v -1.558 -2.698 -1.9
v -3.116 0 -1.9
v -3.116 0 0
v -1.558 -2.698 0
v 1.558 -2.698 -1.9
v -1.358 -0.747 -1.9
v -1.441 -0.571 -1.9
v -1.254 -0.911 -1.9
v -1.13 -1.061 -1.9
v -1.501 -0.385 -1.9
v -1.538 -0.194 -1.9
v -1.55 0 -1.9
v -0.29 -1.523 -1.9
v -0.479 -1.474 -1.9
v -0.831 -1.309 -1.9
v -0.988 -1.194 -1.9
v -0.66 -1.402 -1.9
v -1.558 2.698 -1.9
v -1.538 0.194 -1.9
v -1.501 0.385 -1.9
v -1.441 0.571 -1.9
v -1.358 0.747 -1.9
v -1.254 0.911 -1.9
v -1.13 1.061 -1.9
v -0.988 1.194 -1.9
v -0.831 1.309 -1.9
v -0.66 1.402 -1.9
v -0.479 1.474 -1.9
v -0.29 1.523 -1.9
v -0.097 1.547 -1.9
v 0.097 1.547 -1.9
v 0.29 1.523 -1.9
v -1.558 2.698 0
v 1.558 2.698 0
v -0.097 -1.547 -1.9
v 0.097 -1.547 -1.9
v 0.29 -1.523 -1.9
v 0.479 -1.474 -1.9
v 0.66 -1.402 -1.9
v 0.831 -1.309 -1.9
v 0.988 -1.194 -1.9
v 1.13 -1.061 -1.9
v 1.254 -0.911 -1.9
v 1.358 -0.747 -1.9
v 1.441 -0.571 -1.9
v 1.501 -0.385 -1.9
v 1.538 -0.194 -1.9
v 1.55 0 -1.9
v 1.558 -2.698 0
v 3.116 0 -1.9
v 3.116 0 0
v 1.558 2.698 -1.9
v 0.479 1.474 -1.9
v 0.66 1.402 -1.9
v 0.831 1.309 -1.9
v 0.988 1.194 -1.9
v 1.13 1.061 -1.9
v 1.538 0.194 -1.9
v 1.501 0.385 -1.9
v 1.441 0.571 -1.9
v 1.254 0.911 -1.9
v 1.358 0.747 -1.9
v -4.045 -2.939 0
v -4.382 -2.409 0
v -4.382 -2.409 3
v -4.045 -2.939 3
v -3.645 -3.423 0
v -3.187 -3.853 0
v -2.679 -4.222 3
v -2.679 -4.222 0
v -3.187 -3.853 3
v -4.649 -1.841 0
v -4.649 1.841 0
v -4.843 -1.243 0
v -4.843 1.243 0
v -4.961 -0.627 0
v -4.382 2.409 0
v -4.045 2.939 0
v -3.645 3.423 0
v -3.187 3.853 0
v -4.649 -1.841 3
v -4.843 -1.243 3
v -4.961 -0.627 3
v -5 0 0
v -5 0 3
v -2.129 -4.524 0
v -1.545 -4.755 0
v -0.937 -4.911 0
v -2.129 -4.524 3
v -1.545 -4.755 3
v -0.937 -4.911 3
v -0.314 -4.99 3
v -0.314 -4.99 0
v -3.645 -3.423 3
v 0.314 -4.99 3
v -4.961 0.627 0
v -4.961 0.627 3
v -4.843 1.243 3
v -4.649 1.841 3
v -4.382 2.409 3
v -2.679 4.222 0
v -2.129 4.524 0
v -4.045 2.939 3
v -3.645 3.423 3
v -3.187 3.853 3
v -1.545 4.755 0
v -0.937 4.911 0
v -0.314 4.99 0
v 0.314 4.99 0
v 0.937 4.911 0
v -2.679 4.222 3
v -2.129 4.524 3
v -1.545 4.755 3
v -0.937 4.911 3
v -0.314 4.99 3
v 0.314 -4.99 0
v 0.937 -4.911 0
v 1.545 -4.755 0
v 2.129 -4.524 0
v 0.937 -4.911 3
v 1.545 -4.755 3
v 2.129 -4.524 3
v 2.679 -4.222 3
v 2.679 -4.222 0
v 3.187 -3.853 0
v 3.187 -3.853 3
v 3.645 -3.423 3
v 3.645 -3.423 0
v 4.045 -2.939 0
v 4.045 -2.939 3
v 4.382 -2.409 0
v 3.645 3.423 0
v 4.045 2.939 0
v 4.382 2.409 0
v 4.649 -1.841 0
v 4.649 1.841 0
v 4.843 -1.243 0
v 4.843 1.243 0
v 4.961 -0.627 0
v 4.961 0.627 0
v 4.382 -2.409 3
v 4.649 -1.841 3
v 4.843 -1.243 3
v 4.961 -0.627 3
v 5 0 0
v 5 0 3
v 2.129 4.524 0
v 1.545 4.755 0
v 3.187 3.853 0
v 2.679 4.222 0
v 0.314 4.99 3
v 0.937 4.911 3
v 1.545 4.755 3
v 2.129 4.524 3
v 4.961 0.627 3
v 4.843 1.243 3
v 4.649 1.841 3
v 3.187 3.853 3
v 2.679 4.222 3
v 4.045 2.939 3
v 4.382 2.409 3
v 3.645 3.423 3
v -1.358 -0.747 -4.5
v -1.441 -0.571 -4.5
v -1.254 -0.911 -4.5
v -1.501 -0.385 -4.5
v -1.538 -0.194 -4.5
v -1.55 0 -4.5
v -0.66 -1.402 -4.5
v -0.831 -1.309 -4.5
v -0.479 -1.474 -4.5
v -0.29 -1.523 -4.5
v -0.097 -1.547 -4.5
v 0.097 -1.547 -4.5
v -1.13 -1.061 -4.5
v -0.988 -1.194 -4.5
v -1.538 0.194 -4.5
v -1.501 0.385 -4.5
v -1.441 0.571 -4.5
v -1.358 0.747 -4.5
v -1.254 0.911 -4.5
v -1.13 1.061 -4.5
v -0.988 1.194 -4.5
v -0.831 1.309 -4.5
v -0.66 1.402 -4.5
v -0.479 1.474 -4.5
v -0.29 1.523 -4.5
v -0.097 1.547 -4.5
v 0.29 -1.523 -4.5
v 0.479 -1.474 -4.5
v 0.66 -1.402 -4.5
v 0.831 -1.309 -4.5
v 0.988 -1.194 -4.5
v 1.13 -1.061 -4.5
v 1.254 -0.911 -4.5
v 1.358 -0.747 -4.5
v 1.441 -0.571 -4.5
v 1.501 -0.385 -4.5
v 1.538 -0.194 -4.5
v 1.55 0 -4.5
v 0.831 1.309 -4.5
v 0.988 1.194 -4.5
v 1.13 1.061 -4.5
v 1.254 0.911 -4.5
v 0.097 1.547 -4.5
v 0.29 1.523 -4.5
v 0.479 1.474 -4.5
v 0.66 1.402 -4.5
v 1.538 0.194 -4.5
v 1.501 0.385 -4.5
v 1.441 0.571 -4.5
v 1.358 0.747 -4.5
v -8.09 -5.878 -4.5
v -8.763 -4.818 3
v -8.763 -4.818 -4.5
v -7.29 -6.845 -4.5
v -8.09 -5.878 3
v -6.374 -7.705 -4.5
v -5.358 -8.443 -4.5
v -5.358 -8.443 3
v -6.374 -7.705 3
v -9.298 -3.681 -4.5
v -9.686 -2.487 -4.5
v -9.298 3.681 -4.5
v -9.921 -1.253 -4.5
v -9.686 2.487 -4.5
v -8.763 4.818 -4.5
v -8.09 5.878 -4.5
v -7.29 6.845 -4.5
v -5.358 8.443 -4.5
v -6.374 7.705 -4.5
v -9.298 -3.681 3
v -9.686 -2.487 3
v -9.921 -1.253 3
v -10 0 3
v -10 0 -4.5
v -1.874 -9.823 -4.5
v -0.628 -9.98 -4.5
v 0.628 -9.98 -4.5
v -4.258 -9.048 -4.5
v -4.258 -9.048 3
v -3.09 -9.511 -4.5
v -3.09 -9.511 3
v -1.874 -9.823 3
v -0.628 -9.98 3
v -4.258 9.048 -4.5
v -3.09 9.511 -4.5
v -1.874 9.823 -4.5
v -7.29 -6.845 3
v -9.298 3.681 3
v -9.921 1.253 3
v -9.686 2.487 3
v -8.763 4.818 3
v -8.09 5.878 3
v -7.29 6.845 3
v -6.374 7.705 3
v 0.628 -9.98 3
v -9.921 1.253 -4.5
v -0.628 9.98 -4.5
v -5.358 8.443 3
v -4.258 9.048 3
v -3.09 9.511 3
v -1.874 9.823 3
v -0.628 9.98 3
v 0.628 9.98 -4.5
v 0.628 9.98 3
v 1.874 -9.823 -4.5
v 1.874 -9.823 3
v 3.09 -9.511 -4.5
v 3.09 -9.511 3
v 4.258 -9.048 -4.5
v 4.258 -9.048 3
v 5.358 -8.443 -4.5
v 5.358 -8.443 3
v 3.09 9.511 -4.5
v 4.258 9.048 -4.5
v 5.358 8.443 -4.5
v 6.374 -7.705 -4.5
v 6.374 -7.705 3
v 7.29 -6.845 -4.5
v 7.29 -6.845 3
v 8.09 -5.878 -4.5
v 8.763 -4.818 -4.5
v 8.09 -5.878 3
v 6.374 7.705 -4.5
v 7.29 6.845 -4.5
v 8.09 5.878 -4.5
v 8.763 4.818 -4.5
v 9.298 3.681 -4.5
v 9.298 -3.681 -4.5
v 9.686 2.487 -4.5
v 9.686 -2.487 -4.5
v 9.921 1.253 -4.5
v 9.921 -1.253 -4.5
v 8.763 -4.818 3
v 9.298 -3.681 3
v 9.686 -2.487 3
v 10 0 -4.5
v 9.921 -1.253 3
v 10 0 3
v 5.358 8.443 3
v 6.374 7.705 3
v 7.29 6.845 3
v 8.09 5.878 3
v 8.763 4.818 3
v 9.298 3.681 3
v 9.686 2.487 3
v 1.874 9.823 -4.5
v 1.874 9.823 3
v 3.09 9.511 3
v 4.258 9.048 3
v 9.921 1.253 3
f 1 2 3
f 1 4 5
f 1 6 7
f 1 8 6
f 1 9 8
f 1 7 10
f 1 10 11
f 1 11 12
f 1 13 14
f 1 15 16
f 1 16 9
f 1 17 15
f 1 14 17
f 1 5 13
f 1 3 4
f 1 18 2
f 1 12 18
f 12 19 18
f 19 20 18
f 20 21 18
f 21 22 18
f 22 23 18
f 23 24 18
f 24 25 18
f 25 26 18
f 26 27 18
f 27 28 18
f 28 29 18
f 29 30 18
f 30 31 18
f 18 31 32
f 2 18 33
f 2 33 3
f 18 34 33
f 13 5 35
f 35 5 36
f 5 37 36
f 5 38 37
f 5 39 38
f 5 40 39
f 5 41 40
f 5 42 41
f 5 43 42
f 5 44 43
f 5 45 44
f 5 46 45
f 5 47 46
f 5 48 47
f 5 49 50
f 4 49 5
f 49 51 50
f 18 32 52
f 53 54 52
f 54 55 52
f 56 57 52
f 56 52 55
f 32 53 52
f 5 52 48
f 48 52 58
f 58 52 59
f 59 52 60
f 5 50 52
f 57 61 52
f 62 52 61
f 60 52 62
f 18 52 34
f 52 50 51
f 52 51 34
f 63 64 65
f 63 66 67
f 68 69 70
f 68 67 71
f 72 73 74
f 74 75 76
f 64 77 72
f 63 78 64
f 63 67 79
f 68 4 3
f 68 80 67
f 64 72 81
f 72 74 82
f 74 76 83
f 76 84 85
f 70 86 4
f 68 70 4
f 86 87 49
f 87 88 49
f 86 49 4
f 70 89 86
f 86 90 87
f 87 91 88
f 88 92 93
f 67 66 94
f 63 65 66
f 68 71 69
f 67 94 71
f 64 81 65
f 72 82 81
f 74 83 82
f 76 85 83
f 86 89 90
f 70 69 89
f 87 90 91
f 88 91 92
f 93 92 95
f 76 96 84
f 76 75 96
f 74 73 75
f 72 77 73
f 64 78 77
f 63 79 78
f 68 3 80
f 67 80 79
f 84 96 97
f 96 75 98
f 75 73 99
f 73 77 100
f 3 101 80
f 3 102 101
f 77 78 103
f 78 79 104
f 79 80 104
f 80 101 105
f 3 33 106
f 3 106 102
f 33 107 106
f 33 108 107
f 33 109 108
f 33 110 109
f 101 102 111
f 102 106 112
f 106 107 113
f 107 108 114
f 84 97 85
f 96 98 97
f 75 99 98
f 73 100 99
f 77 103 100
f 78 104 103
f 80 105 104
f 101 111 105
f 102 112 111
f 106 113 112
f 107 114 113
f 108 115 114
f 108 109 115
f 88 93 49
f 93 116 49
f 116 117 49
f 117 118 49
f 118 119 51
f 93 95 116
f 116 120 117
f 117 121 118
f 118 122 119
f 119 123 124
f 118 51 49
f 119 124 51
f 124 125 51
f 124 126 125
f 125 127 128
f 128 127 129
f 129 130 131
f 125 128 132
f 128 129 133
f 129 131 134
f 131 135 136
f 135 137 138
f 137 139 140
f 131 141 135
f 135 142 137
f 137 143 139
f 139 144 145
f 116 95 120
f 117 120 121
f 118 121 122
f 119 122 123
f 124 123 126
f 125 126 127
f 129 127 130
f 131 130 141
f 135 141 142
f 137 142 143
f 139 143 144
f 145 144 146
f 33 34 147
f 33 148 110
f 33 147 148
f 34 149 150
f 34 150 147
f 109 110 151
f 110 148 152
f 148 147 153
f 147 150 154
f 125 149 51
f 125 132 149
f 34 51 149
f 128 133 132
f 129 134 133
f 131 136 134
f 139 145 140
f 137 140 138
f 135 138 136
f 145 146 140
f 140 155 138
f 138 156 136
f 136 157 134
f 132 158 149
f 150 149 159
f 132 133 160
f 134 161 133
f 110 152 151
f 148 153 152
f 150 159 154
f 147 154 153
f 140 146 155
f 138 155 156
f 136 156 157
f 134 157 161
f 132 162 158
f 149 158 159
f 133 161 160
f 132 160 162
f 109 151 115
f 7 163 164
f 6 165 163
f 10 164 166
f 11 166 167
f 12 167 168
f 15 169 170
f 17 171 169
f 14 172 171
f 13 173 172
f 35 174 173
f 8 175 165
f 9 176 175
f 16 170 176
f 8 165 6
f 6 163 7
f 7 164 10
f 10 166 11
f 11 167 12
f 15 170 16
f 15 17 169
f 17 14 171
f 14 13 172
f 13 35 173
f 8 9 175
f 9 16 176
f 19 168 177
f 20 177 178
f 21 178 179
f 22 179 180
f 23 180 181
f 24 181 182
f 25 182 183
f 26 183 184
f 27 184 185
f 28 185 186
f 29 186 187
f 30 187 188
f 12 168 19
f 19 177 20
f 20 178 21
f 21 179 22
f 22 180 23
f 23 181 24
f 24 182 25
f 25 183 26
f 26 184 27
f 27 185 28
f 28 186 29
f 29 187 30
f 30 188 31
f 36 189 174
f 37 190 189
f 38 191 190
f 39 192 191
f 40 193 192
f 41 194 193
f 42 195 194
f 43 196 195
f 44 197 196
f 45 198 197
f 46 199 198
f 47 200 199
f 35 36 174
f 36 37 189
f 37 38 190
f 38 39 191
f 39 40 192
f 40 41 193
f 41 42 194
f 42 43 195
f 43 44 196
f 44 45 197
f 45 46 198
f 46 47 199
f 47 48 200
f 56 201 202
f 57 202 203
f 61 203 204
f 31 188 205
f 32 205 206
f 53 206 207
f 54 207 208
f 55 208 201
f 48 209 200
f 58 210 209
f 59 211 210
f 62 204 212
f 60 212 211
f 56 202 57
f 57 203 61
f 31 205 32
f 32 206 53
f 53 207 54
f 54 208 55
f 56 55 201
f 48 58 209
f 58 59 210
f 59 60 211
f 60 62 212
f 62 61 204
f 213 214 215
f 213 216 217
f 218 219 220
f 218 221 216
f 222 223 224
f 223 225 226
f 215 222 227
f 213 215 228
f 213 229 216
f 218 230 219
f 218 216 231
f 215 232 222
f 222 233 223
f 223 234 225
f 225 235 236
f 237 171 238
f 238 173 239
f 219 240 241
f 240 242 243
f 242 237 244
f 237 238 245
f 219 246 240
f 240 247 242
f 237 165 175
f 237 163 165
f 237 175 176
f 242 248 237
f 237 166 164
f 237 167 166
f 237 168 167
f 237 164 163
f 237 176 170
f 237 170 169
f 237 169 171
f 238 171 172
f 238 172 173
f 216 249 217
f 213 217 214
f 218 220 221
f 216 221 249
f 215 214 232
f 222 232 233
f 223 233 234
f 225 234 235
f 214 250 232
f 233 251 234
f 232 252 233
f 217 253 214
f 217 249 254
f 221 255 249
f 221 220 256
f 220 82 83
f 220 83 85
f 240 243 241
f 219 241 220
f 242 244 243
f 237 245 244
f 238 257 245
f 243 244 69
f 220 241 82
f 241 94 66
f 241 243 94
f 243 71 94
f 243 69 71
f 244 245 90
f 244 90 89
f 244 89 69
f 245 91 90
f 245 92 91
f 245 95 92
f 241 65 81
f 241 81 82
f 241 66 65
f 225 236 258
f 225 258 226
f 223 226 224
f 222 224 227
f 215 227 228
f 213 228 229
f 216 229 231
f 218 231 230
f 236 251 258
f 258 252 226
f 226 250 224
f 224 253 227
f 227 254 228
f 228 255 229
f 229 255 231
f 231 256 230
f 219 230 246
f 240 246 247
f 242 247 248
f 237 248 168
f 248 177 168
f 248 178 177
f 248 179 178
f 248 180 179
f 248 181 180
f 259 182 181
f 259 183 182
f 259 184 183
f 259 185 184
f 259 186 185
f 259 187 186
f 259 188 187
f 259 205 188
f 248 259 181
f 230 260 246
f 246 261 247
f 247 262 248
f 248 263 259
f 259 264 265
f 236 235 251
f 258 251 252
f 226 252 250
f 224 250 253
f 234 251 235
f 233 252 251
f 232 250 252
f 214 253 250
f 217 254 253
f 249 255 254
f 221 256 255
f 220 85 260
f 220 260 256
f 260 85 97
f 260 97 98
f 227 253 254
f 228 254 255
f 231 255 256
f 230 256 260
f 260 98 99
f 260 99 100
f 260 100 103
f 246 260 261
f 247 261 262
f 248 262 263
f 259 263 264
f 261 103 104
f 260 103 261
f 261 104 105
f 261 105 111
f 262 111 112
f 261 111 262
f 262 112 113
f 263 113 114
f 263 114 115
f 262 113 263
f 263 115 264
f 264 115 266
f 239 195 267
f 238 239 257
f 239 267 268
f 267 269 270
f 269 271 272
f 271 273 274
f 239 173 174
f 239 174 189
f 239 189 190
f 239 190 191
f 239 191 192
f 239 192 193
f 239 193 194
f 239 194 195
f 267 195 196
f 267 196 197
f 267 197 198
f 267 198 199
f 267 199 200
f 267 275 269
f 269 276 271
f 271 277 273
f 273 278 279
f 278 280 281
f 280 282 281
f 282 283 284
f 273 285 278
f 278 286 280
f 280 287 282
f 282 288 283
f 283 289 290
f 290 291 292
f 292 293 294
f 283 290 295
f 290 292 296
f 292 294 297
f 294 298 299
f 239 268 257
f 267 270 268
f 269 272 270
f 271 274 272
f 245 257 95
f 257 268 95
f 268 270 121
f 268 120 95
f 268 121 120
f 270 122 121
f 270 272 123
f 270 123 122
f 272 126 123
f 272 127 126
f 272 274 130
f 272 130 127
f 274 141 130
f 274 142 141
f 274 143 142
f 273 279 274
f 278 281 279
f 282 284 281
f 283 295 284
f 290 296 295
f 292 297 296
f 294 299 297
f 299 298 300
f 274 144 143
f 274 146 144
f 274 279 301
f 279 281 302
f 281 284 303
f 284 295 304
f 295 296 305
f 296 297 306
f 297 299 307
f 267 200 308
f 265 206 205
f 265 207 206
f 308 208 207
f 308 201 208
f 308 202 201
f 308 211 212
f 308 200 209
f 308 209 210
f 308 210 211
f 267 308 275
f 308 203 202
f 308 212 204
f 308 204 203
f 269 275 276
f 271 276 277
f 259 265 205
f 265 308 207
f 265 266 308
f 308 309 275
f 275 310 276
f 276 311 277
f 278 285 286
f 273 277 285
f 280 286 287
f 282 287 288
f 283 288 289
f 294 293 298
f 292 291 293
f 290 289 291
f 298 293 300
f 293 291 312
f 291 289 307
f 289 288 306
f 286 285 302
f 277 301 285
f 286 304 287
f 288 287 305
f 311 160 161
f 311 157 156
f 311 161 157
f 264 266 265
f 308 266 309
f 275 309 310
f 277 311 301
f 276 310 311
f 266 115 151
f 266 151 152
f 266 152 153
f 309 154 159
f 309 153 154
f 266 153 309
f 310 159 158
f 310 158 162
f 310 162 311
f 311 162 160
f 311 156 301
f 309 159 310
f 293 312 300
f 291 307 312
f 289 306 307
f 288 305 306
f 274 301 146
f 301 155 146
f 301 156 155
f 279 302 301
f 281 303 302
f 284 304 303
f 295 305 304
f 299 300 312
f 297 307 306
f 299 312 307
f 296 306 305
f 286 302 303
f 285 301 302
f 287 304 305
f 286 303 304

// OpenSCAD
$fn = 50;


difference() {
	union() {
		translate(v = [0, 0, -4.5000000000]) {
			cylinder(h = 7.5000000000, r = 10.0000000000);
		}
	}
	union() {
		translate(v = [0, 0, 0]) {
			rotate(a = [0, 0, 0]) {
				difference() {
					union() {
						translate(v = [0, 0, -1.9000000000]) {
							linear_extrude(height = 1.9000000000) {
								polygon(points = [[3.1158000000, 0.0000000000], [1.5579000000, 2.6983619531], [-1.5579000000, 2.6983619531], [-3.1158000000, 0.0000000000], [-1.5579000000, -2.6983619531], [1.5579000000, -2.6983619531]]);
							}
						}
					}
					union();
				}
			}
		}
		#cylinder(h = 3, r = 5.0000000000);
		#translate(v = [0, 0, -100.0000000000]) {
			cylinder(h = 200, r = 1.5500000000);
		}
	}
}
